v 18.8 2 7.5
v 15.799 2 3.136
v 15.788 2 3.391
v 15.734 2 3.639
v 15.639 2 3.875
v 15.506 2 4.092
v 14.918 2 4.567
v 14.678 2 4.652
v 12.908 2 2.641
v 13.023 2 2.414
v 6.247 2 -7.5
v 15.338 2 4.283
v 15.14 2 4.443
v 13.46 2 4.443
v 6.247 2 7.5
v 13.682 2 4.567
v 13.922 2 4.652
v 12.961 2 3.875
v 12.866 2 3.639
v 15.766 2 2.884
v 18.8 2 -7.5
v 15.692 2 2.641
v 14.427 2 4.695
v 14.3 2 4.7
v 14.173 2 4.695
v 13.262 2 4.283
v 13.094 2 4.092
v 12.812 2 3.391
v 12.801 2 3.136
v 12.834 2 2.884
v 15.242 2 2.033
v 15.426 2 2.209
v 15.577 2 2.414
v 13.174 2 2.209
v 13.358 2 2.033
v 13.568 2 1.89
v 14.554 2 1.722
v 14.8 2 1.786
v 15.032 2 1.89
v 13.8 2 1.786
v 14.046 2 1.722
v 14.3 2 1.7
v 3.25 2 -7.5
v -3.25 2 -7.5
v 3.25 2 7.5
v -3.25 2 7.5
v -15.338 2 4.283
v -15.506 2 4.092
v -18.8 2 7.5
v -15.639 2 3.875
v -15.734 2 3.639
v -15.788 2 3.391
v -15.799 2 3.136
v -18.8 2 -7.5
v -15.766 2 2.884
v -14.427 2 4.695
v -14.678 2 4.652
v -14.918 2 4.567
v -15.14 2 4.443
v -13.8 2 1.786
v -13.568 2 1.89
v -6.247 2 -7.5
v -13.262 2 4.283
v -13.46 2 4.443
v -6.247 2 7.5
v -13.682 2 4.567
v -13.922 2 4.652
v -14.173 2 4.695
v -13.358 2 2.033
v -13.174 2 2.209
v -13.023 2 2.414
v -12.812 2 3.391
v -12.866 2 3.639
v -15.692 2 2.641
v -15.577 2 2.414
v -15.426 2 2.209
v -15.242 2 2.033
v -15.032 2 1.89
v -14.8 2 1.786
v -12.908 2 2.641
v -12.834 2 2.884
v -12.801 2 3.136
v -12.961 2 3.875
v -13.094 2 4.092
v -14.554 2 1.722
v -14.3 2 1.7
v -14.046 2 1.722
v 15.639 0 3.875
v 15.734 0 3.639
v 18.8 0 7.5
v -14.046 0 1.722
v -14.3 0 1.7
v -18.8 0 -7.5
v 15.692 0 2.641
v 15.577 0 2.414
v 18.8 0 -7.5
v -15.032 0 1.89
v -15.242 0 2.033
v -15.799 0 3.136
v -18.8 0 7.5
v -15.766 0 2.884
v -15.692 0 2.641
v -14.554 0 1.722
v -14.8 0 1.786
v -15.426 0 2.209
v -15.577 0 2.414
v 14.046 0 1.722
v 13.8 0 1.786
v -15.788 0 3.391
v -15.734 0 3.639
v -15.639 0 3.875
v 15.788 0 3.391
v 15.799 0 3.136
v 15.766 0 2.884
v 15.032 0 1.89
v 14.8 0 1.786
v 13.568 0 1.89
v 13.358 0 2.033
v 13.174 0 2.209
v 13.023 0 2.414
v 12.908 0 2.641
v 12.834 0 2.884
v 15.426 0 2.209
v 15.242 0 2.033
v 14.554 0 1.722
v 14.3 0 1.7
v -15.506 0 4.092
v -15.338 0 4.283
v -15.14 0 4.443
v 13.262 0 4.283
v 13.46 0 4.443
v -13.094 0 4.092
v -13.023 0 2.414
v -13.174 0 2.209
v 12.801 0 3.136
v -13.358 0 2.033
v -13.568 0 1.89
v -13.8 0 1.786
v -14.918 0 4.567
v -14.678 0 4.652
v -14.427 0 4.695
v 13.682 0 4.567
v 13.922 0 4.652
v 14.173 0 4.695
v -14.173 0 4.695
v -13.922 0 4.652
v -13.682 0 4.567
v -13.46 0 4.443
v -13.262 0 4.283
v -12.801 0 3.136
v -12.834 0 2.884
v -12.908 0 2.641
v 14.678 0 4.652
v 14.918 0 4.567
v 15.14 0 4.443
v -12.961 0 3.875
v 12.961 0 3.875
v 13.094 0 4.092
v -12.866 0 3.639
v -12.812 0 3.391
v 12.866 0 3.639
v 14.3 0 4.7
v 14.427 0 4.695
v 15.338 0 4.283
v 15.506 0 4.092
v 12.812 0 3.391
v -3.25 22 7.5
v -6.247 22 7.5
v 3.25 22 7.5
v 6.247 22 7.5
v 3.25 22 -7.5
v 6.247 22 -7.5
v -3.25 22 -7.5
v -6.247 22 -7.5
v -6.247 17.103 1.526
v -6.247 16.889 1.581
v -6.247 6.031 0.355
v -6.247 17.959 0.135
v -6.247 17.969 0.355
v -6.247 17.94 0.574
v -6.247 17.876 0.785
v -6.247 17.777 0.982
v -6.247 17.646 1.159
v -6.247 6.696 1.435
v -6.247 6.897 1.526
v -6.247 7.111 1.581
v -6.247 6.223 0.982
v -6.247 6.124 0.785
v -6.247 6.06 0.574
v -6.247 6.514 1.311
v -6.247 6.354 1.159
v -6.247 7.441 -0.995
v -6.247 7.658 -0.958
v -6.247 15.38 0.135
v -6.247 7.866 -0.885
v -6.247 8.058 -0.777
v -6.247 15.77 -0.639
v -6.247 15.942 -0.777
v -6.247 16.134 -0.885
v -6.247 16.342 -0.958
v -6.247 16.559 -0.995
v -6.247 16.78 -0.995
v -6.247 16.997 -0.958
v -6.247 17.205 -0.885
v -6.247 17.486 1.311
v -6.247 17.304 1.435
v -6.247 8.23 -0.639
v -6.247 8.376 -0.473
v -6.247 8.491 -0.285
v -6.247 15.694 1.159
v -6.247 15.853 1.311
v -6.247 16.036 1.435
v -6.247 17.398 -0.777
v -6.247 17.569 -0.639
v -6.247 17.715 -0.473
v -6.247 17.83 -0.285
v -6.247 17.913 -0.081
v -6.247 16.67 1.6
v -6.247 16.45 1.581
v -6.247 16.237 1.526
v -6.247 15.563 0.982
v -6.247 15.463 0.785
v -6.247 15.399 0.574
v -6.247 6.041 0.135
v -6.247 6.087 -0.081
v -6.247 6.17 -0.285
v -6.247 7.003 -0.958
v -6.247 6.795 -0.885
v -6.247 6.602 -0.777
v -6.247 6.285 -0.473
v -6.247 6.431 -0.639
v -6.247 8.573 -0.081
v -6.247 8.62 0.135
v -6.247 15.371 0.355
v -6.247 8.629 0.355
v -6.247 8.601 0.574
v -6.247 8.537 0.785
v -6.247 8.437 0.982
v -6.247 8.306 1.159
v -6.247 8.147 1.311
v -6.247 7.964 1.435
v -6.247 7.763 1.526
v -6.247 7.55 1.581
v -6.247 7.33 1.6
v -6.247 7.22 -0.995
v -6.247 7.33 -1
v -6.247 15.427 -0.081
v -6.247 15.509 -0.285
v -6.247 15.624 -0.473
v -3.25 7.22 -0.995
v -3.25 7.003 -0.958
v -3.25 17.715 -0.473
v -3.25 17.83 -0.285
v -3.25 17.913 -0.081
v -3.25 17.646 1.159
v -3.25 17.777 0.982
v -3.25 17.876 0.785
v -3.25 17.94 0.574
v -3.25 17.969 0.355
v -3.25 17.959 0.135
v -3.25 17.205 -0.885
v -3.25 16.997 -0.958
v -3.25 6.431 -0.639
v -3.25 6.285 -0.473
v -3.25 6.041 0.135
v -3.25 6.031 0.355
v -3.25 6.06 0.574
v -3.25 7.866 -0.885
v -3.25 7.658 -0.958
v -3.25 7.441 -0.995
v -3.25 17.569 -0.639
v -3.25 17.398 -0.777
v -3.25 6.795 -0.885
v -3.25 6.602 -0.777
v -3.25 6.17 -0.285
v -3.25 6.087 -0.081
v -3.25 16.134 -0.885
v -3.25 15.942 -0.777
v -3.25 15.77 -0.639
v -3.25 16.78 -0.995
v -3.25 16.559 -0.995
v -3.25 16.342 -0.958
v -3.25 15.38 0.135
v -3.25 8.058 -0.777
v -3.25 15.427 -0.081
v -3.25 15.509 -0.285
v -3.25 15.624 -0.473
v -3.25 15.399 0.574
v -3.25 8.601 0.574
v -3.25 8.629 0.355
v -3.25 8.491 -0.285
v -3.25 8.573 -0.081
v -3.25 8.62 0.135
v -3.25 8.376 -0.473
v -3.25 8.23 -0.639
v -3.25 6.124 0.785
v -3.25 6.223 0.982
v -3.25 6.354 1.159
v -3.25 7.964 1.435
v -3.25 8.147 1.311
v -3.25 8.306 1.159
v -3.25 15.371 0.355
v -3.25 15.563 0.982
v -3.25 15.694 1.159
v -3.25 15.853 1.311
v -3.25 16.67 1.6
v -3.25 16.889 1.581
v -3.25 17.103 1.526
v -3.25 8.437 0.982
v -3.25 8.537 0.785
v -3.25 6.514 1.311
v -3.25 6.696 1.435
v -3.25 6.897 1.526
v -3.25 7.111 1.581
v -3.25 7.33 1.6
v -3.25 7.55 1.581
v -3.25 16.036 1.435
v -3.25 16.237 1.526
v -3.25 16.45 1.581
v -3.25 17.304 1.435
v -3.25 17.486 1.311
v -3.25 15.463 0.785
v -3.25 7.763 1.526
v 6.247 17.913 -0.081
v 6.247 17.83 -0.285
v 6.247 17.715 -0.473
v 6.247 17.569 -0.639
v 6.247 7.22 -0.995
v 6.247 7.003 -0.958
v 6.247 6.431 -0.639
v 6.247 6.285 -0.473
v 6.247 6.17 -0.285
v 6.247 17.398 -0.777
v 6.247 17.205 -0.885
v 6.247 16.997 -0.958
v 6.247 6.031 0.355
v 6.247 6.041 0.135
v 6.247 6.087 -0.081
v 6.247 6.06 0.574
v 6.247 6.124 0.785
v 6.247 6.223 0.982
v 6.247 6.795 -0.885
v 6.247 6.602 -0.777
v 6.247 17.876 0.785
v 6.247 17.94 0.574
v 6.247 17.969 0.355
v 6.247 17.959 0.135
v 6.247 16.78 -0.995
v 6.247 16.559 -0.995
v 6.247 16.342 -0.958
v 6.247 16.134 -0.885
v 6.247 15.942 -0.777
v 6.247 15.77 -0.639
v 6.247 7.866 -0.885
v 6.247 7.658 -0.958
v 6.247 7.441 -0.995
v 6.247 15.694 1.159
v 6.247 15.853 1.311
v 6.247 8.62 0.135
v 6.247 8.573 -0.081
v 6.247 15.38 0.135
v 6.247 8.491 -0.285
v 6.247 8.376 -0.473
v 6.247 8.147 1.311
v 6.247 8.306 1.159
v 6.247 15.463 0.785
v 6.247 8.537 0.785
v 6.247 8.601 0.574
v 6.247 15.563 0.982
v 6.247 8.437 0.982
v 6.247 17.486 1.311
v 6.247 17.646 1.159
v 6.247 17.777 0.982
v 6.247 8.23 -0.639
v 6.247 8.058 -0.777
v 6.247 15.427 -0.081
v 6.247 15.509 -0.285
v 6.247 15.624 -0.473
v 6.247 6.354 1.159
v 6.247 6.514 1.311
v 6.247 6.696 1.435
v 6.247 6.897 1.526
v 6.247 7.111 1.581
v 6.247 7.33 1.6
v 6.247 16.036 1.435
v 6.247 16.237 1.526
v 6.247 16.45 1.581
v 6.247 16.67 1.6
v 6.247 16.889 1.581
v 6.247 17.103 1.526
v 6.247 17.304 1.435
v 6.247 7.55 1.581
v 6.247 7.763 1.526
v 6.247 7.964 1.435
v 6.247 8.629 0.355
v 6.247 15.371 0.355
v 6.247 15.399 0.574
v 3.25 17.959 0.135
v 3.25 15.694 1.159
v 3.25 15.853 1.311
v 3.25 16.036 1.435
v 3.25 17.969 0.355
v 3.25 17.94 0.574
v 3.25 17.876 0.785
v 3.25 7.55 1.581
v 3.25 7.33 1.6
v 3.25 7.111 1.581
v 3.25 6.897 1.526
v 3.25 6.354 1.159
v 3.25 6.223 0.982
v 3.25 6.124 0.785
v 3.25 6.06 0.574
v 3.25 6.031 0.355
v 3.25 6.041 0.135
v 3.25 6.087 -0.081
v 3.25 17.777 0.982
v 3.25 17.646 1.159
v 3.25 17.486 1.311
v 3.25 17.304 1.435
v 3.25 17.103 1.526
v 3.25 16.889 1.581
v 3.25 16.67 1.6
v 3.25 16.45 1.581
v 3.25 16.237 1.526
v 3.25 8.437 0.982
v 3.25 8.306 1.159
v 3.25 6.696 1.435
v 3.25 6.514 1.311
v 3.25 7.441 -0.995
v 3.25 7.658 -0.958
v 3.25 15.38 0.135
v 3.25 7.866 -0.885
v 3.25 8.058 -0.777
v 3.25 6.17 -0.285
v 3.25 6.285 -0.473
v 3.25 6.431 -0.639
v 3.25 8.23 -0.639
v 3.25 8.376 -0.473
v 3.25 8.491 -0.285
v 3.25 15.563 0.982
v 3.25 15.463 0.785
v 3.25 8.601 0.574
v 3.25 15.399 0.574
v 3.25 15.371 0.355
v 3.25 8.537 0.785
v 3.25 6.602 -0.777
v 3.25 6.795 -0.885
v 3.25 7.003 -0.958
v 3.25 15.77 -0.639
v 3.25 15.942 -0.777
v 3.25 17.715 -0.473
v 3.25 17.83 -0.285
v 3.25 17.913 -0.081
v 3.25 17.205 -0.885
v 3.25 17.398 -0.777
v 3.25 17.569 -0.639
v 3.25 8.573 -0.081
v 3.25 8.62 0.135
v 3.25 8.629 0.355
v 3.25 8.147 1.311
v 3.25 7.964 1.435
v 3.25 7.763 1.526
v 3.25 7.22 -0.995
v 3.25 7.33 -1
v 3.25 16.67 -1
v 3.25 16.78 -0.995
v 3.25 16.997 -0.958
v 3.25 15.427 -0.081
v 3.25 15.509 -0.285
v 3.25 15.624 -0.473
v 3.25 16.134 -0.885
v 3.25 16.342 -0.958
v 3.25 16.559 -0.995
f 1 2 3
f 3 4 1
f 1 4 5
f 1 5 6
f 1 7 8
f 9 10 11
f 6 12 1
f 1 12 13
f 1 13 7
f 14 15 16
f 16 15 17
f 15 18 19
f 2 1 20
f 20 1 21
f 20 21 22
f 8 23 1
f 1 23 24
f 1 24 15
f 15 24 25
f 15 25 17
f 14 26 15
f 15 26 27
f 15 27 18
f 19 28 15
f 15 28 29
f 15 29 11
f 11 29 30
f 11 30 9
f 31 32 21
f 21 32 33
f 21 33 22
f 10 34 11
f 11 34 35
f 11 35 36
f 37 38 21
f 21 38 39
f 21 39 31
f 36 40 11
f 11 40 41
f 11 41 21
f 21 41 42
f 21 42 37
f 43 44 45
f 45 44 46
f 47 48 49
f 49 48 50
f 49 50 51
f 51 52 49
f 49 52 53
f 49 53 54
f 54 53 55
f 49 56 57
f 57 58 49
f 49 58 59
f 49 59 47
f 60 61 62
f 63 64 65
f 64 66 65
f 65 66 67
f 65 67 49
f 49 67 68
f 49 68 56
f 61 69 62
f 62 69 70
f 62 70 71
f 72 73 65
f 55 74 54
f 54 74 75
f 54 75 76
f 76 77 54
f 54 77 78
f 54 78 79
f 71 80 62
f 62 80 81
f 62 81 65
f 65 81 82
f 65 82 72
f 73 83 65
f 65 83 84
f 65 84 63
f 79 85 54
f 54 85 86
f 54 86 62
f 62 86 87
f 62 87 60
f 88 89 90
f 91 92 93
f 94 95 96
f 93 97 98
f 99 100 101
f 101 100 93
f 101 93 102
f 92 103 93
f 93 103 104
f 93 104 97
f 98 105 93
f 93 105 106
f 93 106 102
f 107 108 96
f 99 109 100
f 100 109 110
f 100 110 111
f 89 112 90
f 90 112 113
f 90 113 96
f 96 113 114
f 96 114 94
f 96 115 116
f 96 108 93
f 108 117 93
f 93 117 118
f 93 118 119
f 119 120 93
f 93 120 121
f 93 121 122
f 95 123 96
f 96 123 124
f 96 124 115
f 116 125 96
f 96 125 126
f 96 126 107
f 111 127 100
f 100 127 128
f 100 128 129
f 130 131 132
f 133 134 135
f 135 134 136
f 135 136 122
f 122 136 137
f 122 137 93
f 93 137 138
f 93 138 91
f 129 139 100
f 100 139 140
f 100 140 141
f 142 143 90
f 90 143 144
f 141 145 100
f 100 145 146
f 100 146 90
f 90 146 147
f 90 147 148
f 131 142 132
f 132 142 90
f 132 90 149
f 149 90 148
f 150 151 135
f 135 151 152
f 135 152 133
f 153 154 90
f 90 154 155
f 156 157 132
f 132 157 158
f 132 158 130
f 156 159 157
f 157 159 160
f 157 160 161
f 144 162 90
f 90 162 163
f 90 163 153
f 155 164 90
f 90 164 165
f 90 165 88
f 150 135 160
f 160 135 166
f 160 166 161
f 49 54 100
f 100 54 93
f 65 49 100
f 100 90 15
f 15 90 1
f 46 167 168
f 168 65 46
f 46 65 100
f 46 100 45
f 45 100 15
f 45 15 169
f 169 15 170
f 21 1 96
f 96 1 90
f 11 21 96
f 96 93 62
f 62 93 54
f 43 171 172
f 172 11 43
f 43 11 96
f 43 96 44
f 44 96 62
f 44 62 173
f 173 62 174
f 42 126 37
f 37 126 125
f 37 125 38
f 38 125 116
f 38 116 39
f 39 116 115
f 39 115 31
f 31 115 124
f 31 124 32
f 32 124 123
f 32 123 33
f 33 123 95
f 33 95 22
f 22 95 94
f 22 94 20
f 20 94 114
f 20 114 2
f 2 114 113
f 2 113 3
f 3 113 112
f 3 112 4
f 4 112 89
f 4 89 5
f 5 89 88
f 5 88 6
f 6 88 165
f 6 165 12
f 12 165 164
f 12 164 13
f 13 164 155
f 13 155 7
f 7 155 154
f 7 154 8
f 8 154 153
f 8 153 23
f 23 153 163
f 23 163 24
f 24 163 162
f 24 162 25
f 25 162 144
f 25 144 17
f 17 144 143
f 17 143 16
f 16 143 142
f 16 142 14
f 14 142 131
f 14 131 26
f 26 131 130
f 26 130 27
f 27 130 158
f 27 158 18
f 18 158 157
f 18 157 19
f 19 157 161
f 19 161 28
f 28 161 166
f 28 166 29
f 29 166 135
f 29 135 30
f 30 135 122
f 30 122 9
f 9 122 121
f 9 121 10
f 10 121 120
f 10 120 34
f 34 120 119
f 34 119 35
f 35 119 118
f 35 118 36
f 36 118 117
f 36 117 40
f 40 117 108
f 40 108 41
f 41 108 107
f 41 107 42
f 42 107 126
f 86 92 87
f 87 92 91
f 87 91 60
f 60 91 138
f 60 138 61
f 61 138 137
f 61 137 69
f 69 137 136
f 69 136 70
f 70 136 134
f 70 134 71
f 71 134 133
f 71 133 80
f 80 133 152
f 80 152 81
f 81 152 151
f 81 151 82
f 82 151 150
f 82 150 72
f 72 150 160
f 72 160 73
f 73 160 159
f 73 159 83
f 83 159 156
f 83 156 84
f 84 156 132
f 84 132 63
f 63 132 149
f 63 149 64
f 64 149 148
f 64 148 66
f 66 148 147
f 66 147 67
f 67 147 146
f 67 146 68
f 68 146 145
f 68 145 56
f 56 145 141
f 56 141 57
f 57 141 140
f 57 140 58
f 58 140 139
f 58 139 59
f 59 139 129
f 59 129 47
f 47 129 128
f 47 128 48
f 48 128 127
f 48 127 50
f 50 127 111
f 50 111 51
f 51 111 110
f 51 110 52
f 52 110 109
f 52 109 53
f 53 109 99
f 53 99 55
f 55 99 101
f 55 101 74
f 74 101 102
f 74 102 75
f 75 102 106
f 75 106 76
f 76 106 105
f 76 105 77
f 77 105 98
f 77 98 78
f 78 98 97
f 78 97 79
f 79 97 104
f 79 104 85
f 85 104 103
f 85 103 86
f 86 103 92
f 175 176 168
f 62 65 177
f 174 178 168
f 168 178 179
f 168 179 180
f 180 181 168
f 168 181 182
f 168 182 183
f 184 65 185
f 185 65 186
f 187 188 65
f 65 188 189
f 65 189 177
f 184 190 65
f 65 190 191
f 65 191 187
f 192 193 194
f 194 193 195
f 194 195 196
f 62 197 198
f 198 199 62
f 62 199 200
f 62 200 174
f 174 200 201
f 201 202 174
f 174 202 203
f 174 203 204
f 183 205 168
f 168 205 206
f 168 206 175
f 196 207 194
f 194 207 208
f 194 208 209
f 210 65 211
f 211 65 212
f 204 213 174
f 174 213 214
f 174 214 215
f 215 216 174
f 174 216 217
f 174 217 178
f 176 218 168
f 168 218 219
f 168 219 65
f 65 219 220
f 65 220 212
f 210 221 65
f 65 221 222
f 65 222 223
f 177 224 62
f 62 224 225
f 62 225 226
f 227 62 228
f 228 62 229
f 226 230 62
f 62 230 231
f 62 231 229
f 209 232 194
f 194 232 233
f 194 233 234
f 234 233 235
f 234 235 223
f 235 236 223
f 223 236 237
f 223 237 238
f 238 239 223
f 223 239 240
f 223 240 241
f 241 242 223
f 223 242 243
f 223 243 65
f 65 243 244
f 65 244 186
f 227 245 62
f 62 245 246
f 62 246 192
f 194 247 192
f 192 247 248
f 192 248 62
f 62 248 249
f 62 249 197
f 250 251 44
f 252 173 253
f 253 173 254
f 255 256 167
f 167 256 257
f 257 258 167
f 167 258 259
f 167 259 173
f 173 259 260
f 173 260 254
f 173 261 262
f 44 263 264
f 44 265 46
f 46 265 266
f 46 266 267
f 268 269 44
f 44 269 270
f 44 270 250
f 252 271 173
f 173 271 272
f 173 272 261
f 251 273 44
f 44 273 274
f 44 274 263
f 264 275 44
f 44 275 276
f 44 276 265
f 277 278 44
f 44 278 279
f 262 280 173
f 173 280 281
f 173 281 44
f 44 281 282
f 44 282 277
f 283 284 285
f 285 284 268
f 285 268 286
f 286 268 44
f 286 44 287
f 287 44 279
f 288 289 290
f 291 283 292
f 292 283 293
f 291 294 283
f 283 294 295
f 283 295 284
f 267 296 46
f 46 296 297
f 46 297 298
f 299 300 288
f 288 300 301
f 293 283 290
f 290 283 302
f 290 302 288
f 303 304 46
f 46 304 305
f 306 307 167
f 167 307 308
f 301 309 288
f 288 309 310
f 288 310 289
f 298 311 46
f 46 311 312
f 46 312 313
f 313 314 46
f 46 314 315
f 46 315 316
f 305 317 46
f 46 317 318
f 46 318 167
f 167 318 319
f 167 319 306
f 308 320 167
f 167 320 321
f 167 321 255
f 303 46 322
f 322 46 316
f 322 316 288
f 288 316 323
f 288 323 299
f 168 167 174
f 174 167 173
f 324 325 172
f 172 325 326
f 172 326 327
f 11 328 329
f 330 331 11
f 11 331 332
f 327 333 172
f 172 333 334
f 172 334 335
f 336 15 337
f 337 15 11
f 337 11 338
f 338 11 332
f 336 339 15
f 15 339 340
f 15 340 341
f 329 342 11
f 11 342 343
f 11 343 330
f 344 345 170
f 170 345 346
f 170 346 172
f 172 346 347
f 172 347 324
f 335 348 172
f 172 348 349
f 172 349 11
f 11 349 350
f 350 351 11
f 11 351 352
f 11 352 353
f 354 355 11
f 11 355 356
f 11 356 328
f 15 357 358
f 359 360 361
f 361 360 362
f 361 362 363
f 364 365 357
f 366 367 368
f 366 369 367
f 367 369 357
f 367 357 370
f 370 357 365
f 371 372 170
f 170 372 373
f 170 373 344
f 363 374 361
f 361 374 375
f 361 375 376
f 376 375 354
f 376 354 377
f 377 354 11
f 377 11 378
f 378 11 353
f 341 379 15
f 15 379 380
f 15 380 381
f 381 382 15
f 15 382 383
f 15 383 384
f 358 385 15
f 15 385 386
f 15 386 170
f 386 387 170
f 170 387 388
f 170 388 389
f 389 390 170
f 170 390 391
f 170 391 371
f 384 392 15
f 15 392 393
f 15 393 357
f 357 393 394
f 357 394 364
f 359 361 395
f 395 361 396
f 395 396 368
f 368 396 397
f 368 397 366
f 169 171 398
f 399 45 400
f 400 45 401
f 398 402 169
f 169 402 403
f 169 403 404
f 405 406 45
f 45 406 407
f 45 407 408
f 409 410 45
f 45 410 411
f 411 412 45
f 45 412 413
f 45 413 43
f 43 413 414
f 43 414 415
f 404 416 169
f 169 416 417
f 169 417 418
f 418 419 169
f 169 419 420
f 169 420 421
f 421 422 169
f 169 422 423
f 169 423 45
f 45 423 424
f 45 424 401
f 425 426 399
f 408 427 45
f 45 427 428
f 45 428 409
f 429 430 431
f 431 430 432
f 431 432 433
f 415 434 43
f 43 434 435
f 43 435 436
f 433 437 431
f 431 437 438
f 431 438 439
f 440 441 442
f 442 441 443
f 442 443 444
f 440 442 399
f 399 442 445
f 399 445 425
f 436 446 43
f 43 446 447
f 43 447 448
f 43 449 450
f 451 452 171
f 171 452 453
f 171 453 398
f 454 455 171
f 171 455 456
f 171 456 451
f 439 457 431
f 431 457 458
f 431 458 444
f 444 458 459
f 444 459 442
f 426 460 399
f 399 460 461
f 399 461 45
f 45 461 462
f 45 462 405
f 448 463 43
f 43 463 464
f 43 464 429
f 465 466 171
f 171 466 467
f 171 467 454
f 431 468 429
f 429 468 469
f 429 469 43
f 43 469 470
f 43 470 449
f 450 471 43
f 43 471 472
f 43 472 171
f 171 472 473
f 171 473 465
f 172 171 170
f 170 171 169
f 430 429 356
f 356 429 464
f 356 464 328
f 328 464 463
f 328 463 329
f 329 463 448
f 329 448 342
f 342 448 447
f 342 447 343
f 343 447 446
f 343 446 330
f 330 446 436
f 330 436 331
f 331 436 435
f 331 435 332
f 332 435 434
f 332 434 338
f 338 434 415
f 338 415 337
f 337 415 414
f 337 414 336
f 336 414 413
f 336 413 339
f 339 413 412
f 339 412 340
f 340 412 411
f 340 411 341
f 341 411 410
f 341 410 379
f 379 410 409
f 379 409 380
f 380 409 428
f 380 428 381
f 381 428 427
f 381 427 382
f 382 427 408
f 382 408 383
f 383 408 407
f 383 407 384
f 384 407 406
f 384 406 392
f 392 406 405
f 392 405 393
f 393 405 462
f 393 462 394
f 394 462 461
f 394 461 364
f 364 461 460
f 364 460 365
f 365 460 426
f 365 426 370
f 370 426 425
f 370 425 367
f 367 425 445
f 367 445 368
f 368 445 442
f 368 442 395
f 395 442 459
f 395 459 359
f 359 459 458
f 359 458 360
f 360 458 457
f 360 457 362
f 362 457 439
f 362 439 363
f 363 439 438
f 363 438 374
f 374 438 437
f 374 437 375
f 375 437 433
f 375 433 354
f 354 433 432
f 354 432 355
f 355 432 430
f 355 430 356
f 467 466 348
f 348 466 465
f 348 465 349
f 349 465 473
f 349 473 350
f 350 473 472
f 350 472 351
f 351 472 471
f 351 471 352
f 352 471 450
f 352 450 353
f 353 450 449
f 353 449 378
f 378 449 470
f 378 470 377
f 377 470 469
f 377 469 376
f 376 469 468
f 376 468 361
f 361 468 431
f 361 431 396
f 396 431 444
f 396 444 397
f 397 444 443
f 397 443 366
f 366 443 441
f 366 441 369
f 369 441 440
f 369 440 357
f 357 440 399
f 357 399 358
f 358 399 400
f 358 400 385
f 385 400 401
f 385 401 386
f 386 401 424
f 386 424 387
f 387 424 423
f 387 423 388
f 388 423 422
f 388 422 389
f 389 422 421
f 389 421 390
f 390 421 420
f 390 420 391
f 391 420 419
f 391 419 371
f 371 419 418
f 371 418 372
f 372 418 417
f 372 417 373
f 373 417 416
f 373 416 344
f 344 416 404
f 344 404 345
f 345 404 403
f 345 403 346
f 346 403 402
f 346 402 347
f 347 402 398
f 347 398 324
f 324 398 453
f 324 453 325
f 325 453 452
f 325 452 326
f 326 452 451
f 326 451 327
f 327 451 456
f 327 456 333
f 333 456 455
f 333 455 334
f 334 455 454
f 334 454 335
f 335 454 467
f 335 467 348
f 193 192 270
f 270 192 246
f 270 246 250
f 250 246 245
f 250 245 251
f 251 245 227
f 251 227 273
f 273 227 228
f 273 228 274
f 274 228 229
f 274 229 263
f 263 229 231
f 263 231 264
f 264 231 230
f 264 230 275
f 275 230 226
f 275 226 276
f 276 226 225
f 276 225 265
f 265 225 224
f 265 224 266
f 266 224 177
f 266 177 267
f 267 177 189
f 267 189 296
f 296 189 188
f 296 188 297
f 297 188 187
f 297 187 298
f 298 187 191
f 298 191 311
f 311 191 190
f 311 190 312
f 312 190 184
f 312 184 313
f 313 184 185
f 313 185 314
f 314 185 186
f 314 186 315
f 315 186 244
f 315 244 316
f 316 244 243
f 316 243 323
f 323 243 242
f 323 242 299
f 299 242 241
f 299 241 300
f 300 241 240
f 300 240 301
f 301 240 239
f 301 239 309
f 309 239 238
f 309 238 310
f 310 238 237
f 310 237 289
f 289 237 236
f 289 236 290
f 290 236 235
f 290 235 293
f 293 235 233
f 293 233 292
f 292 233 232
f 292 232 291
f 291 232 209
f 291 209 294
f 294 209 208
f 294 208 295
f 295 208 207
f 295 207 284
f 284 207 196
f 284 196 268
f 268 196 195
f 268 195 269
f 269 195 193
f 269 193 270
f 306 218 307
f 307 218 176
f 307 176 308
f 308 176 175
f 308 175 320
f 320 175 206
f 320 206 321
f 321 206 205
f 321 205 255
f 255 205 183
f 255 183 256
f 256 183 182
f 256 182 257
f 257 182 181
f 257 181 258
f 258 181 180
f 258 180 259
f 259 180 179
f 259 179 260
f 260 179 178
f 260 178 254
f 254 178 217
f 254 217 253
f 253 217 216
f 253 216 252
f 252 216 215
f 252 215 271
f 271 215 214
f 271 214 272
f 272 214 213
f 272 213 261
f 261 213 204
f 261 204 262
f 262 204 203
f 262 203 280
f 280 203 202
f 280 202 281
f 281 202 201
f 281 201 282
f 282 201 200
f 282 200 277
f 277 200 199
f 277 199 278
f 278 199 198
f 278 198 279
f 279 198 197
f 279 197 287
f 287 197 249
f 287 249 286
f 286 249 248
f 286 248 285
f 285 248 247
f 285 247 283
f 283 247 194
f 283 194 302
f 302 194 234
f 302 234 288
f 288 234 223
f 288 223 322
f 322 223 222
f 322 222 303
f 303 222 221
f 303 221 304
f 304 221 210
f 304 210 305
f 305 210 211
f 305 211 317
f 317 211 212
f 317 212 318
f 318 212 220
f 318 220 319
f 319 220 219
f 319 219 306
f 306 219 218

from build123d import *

# Parameters (mm, degrees)
CROQUIS1_W              = 37.6
CROQUIS1_H              = 15
CROQUIS1_R              = 1.5
SALIENTE_EXTRUIR1_DEPTH = 2
CROQUIS2_W              = 2.997393123
CROQUIS2_H              = 15
SALIENTE_EXTRUIR2_DEPTH = 20
CROQUIS3_R              = 1.3
CORTAR_EXTRUIR1_DEPTH   = 20


with BuildPart() as part:
    # Croquis1 → Saliente-Extruir1 (new body)
    with BuildSketch(Plane(origin=(0, 0, 0), x_dir=(1, 0, 0), z_dir=(0, 1, 0))):
        Rectangle(CROQUIS1_W, CROQUIS1_H)
        with Locations(Location((14.3, -3.2, 0), (0, 0, 270))):
            Circle(CROQUIS1_R, mode=Mode.SUBTRACT)
        with Locations(Location((-14.3, -3.2, 0), (0, 0, 90))):
            Circle(CROQUIS1_R, mode=Mode.SUBTRACT)
    extrude(amount=SALIENTE_EXTRUIR1_DEPTH)

    # Croquis2 → Saliente-Extruir2 (add)
    with BuildSketch(Plane(origin=(0, 2, 0), x_dir=(1, 0, 0), z_dir=(0, 1, 0))):
        with Locations((-4.748696562, 0)):
            Rectangle(CROQUIS2_W, CROQUIS2_H)
        with Locations((4.748696562, 0)):
            Rectangle(CROQUIS2_W, CROQUIS2_H)
    extrude(amount=SALIENTE_EXTRUIR2_DEPTH)

    # Croquis3 → Cortar-Extruir1 (cut)
    with BuildSketch(Plane.ZY.offset(6.247393123)):
        with Locations((0.3, 16.669676255)):
            Circle(CROQUIS3_R)
        with Locations((0.3, 7.330323745)):
            Circle(CROQUIS3_R)
    extrude(amount=-CORTAR_EXTRUIR1_DEPTH, mode=Mode.SUBTRACT)


solid = part.part
